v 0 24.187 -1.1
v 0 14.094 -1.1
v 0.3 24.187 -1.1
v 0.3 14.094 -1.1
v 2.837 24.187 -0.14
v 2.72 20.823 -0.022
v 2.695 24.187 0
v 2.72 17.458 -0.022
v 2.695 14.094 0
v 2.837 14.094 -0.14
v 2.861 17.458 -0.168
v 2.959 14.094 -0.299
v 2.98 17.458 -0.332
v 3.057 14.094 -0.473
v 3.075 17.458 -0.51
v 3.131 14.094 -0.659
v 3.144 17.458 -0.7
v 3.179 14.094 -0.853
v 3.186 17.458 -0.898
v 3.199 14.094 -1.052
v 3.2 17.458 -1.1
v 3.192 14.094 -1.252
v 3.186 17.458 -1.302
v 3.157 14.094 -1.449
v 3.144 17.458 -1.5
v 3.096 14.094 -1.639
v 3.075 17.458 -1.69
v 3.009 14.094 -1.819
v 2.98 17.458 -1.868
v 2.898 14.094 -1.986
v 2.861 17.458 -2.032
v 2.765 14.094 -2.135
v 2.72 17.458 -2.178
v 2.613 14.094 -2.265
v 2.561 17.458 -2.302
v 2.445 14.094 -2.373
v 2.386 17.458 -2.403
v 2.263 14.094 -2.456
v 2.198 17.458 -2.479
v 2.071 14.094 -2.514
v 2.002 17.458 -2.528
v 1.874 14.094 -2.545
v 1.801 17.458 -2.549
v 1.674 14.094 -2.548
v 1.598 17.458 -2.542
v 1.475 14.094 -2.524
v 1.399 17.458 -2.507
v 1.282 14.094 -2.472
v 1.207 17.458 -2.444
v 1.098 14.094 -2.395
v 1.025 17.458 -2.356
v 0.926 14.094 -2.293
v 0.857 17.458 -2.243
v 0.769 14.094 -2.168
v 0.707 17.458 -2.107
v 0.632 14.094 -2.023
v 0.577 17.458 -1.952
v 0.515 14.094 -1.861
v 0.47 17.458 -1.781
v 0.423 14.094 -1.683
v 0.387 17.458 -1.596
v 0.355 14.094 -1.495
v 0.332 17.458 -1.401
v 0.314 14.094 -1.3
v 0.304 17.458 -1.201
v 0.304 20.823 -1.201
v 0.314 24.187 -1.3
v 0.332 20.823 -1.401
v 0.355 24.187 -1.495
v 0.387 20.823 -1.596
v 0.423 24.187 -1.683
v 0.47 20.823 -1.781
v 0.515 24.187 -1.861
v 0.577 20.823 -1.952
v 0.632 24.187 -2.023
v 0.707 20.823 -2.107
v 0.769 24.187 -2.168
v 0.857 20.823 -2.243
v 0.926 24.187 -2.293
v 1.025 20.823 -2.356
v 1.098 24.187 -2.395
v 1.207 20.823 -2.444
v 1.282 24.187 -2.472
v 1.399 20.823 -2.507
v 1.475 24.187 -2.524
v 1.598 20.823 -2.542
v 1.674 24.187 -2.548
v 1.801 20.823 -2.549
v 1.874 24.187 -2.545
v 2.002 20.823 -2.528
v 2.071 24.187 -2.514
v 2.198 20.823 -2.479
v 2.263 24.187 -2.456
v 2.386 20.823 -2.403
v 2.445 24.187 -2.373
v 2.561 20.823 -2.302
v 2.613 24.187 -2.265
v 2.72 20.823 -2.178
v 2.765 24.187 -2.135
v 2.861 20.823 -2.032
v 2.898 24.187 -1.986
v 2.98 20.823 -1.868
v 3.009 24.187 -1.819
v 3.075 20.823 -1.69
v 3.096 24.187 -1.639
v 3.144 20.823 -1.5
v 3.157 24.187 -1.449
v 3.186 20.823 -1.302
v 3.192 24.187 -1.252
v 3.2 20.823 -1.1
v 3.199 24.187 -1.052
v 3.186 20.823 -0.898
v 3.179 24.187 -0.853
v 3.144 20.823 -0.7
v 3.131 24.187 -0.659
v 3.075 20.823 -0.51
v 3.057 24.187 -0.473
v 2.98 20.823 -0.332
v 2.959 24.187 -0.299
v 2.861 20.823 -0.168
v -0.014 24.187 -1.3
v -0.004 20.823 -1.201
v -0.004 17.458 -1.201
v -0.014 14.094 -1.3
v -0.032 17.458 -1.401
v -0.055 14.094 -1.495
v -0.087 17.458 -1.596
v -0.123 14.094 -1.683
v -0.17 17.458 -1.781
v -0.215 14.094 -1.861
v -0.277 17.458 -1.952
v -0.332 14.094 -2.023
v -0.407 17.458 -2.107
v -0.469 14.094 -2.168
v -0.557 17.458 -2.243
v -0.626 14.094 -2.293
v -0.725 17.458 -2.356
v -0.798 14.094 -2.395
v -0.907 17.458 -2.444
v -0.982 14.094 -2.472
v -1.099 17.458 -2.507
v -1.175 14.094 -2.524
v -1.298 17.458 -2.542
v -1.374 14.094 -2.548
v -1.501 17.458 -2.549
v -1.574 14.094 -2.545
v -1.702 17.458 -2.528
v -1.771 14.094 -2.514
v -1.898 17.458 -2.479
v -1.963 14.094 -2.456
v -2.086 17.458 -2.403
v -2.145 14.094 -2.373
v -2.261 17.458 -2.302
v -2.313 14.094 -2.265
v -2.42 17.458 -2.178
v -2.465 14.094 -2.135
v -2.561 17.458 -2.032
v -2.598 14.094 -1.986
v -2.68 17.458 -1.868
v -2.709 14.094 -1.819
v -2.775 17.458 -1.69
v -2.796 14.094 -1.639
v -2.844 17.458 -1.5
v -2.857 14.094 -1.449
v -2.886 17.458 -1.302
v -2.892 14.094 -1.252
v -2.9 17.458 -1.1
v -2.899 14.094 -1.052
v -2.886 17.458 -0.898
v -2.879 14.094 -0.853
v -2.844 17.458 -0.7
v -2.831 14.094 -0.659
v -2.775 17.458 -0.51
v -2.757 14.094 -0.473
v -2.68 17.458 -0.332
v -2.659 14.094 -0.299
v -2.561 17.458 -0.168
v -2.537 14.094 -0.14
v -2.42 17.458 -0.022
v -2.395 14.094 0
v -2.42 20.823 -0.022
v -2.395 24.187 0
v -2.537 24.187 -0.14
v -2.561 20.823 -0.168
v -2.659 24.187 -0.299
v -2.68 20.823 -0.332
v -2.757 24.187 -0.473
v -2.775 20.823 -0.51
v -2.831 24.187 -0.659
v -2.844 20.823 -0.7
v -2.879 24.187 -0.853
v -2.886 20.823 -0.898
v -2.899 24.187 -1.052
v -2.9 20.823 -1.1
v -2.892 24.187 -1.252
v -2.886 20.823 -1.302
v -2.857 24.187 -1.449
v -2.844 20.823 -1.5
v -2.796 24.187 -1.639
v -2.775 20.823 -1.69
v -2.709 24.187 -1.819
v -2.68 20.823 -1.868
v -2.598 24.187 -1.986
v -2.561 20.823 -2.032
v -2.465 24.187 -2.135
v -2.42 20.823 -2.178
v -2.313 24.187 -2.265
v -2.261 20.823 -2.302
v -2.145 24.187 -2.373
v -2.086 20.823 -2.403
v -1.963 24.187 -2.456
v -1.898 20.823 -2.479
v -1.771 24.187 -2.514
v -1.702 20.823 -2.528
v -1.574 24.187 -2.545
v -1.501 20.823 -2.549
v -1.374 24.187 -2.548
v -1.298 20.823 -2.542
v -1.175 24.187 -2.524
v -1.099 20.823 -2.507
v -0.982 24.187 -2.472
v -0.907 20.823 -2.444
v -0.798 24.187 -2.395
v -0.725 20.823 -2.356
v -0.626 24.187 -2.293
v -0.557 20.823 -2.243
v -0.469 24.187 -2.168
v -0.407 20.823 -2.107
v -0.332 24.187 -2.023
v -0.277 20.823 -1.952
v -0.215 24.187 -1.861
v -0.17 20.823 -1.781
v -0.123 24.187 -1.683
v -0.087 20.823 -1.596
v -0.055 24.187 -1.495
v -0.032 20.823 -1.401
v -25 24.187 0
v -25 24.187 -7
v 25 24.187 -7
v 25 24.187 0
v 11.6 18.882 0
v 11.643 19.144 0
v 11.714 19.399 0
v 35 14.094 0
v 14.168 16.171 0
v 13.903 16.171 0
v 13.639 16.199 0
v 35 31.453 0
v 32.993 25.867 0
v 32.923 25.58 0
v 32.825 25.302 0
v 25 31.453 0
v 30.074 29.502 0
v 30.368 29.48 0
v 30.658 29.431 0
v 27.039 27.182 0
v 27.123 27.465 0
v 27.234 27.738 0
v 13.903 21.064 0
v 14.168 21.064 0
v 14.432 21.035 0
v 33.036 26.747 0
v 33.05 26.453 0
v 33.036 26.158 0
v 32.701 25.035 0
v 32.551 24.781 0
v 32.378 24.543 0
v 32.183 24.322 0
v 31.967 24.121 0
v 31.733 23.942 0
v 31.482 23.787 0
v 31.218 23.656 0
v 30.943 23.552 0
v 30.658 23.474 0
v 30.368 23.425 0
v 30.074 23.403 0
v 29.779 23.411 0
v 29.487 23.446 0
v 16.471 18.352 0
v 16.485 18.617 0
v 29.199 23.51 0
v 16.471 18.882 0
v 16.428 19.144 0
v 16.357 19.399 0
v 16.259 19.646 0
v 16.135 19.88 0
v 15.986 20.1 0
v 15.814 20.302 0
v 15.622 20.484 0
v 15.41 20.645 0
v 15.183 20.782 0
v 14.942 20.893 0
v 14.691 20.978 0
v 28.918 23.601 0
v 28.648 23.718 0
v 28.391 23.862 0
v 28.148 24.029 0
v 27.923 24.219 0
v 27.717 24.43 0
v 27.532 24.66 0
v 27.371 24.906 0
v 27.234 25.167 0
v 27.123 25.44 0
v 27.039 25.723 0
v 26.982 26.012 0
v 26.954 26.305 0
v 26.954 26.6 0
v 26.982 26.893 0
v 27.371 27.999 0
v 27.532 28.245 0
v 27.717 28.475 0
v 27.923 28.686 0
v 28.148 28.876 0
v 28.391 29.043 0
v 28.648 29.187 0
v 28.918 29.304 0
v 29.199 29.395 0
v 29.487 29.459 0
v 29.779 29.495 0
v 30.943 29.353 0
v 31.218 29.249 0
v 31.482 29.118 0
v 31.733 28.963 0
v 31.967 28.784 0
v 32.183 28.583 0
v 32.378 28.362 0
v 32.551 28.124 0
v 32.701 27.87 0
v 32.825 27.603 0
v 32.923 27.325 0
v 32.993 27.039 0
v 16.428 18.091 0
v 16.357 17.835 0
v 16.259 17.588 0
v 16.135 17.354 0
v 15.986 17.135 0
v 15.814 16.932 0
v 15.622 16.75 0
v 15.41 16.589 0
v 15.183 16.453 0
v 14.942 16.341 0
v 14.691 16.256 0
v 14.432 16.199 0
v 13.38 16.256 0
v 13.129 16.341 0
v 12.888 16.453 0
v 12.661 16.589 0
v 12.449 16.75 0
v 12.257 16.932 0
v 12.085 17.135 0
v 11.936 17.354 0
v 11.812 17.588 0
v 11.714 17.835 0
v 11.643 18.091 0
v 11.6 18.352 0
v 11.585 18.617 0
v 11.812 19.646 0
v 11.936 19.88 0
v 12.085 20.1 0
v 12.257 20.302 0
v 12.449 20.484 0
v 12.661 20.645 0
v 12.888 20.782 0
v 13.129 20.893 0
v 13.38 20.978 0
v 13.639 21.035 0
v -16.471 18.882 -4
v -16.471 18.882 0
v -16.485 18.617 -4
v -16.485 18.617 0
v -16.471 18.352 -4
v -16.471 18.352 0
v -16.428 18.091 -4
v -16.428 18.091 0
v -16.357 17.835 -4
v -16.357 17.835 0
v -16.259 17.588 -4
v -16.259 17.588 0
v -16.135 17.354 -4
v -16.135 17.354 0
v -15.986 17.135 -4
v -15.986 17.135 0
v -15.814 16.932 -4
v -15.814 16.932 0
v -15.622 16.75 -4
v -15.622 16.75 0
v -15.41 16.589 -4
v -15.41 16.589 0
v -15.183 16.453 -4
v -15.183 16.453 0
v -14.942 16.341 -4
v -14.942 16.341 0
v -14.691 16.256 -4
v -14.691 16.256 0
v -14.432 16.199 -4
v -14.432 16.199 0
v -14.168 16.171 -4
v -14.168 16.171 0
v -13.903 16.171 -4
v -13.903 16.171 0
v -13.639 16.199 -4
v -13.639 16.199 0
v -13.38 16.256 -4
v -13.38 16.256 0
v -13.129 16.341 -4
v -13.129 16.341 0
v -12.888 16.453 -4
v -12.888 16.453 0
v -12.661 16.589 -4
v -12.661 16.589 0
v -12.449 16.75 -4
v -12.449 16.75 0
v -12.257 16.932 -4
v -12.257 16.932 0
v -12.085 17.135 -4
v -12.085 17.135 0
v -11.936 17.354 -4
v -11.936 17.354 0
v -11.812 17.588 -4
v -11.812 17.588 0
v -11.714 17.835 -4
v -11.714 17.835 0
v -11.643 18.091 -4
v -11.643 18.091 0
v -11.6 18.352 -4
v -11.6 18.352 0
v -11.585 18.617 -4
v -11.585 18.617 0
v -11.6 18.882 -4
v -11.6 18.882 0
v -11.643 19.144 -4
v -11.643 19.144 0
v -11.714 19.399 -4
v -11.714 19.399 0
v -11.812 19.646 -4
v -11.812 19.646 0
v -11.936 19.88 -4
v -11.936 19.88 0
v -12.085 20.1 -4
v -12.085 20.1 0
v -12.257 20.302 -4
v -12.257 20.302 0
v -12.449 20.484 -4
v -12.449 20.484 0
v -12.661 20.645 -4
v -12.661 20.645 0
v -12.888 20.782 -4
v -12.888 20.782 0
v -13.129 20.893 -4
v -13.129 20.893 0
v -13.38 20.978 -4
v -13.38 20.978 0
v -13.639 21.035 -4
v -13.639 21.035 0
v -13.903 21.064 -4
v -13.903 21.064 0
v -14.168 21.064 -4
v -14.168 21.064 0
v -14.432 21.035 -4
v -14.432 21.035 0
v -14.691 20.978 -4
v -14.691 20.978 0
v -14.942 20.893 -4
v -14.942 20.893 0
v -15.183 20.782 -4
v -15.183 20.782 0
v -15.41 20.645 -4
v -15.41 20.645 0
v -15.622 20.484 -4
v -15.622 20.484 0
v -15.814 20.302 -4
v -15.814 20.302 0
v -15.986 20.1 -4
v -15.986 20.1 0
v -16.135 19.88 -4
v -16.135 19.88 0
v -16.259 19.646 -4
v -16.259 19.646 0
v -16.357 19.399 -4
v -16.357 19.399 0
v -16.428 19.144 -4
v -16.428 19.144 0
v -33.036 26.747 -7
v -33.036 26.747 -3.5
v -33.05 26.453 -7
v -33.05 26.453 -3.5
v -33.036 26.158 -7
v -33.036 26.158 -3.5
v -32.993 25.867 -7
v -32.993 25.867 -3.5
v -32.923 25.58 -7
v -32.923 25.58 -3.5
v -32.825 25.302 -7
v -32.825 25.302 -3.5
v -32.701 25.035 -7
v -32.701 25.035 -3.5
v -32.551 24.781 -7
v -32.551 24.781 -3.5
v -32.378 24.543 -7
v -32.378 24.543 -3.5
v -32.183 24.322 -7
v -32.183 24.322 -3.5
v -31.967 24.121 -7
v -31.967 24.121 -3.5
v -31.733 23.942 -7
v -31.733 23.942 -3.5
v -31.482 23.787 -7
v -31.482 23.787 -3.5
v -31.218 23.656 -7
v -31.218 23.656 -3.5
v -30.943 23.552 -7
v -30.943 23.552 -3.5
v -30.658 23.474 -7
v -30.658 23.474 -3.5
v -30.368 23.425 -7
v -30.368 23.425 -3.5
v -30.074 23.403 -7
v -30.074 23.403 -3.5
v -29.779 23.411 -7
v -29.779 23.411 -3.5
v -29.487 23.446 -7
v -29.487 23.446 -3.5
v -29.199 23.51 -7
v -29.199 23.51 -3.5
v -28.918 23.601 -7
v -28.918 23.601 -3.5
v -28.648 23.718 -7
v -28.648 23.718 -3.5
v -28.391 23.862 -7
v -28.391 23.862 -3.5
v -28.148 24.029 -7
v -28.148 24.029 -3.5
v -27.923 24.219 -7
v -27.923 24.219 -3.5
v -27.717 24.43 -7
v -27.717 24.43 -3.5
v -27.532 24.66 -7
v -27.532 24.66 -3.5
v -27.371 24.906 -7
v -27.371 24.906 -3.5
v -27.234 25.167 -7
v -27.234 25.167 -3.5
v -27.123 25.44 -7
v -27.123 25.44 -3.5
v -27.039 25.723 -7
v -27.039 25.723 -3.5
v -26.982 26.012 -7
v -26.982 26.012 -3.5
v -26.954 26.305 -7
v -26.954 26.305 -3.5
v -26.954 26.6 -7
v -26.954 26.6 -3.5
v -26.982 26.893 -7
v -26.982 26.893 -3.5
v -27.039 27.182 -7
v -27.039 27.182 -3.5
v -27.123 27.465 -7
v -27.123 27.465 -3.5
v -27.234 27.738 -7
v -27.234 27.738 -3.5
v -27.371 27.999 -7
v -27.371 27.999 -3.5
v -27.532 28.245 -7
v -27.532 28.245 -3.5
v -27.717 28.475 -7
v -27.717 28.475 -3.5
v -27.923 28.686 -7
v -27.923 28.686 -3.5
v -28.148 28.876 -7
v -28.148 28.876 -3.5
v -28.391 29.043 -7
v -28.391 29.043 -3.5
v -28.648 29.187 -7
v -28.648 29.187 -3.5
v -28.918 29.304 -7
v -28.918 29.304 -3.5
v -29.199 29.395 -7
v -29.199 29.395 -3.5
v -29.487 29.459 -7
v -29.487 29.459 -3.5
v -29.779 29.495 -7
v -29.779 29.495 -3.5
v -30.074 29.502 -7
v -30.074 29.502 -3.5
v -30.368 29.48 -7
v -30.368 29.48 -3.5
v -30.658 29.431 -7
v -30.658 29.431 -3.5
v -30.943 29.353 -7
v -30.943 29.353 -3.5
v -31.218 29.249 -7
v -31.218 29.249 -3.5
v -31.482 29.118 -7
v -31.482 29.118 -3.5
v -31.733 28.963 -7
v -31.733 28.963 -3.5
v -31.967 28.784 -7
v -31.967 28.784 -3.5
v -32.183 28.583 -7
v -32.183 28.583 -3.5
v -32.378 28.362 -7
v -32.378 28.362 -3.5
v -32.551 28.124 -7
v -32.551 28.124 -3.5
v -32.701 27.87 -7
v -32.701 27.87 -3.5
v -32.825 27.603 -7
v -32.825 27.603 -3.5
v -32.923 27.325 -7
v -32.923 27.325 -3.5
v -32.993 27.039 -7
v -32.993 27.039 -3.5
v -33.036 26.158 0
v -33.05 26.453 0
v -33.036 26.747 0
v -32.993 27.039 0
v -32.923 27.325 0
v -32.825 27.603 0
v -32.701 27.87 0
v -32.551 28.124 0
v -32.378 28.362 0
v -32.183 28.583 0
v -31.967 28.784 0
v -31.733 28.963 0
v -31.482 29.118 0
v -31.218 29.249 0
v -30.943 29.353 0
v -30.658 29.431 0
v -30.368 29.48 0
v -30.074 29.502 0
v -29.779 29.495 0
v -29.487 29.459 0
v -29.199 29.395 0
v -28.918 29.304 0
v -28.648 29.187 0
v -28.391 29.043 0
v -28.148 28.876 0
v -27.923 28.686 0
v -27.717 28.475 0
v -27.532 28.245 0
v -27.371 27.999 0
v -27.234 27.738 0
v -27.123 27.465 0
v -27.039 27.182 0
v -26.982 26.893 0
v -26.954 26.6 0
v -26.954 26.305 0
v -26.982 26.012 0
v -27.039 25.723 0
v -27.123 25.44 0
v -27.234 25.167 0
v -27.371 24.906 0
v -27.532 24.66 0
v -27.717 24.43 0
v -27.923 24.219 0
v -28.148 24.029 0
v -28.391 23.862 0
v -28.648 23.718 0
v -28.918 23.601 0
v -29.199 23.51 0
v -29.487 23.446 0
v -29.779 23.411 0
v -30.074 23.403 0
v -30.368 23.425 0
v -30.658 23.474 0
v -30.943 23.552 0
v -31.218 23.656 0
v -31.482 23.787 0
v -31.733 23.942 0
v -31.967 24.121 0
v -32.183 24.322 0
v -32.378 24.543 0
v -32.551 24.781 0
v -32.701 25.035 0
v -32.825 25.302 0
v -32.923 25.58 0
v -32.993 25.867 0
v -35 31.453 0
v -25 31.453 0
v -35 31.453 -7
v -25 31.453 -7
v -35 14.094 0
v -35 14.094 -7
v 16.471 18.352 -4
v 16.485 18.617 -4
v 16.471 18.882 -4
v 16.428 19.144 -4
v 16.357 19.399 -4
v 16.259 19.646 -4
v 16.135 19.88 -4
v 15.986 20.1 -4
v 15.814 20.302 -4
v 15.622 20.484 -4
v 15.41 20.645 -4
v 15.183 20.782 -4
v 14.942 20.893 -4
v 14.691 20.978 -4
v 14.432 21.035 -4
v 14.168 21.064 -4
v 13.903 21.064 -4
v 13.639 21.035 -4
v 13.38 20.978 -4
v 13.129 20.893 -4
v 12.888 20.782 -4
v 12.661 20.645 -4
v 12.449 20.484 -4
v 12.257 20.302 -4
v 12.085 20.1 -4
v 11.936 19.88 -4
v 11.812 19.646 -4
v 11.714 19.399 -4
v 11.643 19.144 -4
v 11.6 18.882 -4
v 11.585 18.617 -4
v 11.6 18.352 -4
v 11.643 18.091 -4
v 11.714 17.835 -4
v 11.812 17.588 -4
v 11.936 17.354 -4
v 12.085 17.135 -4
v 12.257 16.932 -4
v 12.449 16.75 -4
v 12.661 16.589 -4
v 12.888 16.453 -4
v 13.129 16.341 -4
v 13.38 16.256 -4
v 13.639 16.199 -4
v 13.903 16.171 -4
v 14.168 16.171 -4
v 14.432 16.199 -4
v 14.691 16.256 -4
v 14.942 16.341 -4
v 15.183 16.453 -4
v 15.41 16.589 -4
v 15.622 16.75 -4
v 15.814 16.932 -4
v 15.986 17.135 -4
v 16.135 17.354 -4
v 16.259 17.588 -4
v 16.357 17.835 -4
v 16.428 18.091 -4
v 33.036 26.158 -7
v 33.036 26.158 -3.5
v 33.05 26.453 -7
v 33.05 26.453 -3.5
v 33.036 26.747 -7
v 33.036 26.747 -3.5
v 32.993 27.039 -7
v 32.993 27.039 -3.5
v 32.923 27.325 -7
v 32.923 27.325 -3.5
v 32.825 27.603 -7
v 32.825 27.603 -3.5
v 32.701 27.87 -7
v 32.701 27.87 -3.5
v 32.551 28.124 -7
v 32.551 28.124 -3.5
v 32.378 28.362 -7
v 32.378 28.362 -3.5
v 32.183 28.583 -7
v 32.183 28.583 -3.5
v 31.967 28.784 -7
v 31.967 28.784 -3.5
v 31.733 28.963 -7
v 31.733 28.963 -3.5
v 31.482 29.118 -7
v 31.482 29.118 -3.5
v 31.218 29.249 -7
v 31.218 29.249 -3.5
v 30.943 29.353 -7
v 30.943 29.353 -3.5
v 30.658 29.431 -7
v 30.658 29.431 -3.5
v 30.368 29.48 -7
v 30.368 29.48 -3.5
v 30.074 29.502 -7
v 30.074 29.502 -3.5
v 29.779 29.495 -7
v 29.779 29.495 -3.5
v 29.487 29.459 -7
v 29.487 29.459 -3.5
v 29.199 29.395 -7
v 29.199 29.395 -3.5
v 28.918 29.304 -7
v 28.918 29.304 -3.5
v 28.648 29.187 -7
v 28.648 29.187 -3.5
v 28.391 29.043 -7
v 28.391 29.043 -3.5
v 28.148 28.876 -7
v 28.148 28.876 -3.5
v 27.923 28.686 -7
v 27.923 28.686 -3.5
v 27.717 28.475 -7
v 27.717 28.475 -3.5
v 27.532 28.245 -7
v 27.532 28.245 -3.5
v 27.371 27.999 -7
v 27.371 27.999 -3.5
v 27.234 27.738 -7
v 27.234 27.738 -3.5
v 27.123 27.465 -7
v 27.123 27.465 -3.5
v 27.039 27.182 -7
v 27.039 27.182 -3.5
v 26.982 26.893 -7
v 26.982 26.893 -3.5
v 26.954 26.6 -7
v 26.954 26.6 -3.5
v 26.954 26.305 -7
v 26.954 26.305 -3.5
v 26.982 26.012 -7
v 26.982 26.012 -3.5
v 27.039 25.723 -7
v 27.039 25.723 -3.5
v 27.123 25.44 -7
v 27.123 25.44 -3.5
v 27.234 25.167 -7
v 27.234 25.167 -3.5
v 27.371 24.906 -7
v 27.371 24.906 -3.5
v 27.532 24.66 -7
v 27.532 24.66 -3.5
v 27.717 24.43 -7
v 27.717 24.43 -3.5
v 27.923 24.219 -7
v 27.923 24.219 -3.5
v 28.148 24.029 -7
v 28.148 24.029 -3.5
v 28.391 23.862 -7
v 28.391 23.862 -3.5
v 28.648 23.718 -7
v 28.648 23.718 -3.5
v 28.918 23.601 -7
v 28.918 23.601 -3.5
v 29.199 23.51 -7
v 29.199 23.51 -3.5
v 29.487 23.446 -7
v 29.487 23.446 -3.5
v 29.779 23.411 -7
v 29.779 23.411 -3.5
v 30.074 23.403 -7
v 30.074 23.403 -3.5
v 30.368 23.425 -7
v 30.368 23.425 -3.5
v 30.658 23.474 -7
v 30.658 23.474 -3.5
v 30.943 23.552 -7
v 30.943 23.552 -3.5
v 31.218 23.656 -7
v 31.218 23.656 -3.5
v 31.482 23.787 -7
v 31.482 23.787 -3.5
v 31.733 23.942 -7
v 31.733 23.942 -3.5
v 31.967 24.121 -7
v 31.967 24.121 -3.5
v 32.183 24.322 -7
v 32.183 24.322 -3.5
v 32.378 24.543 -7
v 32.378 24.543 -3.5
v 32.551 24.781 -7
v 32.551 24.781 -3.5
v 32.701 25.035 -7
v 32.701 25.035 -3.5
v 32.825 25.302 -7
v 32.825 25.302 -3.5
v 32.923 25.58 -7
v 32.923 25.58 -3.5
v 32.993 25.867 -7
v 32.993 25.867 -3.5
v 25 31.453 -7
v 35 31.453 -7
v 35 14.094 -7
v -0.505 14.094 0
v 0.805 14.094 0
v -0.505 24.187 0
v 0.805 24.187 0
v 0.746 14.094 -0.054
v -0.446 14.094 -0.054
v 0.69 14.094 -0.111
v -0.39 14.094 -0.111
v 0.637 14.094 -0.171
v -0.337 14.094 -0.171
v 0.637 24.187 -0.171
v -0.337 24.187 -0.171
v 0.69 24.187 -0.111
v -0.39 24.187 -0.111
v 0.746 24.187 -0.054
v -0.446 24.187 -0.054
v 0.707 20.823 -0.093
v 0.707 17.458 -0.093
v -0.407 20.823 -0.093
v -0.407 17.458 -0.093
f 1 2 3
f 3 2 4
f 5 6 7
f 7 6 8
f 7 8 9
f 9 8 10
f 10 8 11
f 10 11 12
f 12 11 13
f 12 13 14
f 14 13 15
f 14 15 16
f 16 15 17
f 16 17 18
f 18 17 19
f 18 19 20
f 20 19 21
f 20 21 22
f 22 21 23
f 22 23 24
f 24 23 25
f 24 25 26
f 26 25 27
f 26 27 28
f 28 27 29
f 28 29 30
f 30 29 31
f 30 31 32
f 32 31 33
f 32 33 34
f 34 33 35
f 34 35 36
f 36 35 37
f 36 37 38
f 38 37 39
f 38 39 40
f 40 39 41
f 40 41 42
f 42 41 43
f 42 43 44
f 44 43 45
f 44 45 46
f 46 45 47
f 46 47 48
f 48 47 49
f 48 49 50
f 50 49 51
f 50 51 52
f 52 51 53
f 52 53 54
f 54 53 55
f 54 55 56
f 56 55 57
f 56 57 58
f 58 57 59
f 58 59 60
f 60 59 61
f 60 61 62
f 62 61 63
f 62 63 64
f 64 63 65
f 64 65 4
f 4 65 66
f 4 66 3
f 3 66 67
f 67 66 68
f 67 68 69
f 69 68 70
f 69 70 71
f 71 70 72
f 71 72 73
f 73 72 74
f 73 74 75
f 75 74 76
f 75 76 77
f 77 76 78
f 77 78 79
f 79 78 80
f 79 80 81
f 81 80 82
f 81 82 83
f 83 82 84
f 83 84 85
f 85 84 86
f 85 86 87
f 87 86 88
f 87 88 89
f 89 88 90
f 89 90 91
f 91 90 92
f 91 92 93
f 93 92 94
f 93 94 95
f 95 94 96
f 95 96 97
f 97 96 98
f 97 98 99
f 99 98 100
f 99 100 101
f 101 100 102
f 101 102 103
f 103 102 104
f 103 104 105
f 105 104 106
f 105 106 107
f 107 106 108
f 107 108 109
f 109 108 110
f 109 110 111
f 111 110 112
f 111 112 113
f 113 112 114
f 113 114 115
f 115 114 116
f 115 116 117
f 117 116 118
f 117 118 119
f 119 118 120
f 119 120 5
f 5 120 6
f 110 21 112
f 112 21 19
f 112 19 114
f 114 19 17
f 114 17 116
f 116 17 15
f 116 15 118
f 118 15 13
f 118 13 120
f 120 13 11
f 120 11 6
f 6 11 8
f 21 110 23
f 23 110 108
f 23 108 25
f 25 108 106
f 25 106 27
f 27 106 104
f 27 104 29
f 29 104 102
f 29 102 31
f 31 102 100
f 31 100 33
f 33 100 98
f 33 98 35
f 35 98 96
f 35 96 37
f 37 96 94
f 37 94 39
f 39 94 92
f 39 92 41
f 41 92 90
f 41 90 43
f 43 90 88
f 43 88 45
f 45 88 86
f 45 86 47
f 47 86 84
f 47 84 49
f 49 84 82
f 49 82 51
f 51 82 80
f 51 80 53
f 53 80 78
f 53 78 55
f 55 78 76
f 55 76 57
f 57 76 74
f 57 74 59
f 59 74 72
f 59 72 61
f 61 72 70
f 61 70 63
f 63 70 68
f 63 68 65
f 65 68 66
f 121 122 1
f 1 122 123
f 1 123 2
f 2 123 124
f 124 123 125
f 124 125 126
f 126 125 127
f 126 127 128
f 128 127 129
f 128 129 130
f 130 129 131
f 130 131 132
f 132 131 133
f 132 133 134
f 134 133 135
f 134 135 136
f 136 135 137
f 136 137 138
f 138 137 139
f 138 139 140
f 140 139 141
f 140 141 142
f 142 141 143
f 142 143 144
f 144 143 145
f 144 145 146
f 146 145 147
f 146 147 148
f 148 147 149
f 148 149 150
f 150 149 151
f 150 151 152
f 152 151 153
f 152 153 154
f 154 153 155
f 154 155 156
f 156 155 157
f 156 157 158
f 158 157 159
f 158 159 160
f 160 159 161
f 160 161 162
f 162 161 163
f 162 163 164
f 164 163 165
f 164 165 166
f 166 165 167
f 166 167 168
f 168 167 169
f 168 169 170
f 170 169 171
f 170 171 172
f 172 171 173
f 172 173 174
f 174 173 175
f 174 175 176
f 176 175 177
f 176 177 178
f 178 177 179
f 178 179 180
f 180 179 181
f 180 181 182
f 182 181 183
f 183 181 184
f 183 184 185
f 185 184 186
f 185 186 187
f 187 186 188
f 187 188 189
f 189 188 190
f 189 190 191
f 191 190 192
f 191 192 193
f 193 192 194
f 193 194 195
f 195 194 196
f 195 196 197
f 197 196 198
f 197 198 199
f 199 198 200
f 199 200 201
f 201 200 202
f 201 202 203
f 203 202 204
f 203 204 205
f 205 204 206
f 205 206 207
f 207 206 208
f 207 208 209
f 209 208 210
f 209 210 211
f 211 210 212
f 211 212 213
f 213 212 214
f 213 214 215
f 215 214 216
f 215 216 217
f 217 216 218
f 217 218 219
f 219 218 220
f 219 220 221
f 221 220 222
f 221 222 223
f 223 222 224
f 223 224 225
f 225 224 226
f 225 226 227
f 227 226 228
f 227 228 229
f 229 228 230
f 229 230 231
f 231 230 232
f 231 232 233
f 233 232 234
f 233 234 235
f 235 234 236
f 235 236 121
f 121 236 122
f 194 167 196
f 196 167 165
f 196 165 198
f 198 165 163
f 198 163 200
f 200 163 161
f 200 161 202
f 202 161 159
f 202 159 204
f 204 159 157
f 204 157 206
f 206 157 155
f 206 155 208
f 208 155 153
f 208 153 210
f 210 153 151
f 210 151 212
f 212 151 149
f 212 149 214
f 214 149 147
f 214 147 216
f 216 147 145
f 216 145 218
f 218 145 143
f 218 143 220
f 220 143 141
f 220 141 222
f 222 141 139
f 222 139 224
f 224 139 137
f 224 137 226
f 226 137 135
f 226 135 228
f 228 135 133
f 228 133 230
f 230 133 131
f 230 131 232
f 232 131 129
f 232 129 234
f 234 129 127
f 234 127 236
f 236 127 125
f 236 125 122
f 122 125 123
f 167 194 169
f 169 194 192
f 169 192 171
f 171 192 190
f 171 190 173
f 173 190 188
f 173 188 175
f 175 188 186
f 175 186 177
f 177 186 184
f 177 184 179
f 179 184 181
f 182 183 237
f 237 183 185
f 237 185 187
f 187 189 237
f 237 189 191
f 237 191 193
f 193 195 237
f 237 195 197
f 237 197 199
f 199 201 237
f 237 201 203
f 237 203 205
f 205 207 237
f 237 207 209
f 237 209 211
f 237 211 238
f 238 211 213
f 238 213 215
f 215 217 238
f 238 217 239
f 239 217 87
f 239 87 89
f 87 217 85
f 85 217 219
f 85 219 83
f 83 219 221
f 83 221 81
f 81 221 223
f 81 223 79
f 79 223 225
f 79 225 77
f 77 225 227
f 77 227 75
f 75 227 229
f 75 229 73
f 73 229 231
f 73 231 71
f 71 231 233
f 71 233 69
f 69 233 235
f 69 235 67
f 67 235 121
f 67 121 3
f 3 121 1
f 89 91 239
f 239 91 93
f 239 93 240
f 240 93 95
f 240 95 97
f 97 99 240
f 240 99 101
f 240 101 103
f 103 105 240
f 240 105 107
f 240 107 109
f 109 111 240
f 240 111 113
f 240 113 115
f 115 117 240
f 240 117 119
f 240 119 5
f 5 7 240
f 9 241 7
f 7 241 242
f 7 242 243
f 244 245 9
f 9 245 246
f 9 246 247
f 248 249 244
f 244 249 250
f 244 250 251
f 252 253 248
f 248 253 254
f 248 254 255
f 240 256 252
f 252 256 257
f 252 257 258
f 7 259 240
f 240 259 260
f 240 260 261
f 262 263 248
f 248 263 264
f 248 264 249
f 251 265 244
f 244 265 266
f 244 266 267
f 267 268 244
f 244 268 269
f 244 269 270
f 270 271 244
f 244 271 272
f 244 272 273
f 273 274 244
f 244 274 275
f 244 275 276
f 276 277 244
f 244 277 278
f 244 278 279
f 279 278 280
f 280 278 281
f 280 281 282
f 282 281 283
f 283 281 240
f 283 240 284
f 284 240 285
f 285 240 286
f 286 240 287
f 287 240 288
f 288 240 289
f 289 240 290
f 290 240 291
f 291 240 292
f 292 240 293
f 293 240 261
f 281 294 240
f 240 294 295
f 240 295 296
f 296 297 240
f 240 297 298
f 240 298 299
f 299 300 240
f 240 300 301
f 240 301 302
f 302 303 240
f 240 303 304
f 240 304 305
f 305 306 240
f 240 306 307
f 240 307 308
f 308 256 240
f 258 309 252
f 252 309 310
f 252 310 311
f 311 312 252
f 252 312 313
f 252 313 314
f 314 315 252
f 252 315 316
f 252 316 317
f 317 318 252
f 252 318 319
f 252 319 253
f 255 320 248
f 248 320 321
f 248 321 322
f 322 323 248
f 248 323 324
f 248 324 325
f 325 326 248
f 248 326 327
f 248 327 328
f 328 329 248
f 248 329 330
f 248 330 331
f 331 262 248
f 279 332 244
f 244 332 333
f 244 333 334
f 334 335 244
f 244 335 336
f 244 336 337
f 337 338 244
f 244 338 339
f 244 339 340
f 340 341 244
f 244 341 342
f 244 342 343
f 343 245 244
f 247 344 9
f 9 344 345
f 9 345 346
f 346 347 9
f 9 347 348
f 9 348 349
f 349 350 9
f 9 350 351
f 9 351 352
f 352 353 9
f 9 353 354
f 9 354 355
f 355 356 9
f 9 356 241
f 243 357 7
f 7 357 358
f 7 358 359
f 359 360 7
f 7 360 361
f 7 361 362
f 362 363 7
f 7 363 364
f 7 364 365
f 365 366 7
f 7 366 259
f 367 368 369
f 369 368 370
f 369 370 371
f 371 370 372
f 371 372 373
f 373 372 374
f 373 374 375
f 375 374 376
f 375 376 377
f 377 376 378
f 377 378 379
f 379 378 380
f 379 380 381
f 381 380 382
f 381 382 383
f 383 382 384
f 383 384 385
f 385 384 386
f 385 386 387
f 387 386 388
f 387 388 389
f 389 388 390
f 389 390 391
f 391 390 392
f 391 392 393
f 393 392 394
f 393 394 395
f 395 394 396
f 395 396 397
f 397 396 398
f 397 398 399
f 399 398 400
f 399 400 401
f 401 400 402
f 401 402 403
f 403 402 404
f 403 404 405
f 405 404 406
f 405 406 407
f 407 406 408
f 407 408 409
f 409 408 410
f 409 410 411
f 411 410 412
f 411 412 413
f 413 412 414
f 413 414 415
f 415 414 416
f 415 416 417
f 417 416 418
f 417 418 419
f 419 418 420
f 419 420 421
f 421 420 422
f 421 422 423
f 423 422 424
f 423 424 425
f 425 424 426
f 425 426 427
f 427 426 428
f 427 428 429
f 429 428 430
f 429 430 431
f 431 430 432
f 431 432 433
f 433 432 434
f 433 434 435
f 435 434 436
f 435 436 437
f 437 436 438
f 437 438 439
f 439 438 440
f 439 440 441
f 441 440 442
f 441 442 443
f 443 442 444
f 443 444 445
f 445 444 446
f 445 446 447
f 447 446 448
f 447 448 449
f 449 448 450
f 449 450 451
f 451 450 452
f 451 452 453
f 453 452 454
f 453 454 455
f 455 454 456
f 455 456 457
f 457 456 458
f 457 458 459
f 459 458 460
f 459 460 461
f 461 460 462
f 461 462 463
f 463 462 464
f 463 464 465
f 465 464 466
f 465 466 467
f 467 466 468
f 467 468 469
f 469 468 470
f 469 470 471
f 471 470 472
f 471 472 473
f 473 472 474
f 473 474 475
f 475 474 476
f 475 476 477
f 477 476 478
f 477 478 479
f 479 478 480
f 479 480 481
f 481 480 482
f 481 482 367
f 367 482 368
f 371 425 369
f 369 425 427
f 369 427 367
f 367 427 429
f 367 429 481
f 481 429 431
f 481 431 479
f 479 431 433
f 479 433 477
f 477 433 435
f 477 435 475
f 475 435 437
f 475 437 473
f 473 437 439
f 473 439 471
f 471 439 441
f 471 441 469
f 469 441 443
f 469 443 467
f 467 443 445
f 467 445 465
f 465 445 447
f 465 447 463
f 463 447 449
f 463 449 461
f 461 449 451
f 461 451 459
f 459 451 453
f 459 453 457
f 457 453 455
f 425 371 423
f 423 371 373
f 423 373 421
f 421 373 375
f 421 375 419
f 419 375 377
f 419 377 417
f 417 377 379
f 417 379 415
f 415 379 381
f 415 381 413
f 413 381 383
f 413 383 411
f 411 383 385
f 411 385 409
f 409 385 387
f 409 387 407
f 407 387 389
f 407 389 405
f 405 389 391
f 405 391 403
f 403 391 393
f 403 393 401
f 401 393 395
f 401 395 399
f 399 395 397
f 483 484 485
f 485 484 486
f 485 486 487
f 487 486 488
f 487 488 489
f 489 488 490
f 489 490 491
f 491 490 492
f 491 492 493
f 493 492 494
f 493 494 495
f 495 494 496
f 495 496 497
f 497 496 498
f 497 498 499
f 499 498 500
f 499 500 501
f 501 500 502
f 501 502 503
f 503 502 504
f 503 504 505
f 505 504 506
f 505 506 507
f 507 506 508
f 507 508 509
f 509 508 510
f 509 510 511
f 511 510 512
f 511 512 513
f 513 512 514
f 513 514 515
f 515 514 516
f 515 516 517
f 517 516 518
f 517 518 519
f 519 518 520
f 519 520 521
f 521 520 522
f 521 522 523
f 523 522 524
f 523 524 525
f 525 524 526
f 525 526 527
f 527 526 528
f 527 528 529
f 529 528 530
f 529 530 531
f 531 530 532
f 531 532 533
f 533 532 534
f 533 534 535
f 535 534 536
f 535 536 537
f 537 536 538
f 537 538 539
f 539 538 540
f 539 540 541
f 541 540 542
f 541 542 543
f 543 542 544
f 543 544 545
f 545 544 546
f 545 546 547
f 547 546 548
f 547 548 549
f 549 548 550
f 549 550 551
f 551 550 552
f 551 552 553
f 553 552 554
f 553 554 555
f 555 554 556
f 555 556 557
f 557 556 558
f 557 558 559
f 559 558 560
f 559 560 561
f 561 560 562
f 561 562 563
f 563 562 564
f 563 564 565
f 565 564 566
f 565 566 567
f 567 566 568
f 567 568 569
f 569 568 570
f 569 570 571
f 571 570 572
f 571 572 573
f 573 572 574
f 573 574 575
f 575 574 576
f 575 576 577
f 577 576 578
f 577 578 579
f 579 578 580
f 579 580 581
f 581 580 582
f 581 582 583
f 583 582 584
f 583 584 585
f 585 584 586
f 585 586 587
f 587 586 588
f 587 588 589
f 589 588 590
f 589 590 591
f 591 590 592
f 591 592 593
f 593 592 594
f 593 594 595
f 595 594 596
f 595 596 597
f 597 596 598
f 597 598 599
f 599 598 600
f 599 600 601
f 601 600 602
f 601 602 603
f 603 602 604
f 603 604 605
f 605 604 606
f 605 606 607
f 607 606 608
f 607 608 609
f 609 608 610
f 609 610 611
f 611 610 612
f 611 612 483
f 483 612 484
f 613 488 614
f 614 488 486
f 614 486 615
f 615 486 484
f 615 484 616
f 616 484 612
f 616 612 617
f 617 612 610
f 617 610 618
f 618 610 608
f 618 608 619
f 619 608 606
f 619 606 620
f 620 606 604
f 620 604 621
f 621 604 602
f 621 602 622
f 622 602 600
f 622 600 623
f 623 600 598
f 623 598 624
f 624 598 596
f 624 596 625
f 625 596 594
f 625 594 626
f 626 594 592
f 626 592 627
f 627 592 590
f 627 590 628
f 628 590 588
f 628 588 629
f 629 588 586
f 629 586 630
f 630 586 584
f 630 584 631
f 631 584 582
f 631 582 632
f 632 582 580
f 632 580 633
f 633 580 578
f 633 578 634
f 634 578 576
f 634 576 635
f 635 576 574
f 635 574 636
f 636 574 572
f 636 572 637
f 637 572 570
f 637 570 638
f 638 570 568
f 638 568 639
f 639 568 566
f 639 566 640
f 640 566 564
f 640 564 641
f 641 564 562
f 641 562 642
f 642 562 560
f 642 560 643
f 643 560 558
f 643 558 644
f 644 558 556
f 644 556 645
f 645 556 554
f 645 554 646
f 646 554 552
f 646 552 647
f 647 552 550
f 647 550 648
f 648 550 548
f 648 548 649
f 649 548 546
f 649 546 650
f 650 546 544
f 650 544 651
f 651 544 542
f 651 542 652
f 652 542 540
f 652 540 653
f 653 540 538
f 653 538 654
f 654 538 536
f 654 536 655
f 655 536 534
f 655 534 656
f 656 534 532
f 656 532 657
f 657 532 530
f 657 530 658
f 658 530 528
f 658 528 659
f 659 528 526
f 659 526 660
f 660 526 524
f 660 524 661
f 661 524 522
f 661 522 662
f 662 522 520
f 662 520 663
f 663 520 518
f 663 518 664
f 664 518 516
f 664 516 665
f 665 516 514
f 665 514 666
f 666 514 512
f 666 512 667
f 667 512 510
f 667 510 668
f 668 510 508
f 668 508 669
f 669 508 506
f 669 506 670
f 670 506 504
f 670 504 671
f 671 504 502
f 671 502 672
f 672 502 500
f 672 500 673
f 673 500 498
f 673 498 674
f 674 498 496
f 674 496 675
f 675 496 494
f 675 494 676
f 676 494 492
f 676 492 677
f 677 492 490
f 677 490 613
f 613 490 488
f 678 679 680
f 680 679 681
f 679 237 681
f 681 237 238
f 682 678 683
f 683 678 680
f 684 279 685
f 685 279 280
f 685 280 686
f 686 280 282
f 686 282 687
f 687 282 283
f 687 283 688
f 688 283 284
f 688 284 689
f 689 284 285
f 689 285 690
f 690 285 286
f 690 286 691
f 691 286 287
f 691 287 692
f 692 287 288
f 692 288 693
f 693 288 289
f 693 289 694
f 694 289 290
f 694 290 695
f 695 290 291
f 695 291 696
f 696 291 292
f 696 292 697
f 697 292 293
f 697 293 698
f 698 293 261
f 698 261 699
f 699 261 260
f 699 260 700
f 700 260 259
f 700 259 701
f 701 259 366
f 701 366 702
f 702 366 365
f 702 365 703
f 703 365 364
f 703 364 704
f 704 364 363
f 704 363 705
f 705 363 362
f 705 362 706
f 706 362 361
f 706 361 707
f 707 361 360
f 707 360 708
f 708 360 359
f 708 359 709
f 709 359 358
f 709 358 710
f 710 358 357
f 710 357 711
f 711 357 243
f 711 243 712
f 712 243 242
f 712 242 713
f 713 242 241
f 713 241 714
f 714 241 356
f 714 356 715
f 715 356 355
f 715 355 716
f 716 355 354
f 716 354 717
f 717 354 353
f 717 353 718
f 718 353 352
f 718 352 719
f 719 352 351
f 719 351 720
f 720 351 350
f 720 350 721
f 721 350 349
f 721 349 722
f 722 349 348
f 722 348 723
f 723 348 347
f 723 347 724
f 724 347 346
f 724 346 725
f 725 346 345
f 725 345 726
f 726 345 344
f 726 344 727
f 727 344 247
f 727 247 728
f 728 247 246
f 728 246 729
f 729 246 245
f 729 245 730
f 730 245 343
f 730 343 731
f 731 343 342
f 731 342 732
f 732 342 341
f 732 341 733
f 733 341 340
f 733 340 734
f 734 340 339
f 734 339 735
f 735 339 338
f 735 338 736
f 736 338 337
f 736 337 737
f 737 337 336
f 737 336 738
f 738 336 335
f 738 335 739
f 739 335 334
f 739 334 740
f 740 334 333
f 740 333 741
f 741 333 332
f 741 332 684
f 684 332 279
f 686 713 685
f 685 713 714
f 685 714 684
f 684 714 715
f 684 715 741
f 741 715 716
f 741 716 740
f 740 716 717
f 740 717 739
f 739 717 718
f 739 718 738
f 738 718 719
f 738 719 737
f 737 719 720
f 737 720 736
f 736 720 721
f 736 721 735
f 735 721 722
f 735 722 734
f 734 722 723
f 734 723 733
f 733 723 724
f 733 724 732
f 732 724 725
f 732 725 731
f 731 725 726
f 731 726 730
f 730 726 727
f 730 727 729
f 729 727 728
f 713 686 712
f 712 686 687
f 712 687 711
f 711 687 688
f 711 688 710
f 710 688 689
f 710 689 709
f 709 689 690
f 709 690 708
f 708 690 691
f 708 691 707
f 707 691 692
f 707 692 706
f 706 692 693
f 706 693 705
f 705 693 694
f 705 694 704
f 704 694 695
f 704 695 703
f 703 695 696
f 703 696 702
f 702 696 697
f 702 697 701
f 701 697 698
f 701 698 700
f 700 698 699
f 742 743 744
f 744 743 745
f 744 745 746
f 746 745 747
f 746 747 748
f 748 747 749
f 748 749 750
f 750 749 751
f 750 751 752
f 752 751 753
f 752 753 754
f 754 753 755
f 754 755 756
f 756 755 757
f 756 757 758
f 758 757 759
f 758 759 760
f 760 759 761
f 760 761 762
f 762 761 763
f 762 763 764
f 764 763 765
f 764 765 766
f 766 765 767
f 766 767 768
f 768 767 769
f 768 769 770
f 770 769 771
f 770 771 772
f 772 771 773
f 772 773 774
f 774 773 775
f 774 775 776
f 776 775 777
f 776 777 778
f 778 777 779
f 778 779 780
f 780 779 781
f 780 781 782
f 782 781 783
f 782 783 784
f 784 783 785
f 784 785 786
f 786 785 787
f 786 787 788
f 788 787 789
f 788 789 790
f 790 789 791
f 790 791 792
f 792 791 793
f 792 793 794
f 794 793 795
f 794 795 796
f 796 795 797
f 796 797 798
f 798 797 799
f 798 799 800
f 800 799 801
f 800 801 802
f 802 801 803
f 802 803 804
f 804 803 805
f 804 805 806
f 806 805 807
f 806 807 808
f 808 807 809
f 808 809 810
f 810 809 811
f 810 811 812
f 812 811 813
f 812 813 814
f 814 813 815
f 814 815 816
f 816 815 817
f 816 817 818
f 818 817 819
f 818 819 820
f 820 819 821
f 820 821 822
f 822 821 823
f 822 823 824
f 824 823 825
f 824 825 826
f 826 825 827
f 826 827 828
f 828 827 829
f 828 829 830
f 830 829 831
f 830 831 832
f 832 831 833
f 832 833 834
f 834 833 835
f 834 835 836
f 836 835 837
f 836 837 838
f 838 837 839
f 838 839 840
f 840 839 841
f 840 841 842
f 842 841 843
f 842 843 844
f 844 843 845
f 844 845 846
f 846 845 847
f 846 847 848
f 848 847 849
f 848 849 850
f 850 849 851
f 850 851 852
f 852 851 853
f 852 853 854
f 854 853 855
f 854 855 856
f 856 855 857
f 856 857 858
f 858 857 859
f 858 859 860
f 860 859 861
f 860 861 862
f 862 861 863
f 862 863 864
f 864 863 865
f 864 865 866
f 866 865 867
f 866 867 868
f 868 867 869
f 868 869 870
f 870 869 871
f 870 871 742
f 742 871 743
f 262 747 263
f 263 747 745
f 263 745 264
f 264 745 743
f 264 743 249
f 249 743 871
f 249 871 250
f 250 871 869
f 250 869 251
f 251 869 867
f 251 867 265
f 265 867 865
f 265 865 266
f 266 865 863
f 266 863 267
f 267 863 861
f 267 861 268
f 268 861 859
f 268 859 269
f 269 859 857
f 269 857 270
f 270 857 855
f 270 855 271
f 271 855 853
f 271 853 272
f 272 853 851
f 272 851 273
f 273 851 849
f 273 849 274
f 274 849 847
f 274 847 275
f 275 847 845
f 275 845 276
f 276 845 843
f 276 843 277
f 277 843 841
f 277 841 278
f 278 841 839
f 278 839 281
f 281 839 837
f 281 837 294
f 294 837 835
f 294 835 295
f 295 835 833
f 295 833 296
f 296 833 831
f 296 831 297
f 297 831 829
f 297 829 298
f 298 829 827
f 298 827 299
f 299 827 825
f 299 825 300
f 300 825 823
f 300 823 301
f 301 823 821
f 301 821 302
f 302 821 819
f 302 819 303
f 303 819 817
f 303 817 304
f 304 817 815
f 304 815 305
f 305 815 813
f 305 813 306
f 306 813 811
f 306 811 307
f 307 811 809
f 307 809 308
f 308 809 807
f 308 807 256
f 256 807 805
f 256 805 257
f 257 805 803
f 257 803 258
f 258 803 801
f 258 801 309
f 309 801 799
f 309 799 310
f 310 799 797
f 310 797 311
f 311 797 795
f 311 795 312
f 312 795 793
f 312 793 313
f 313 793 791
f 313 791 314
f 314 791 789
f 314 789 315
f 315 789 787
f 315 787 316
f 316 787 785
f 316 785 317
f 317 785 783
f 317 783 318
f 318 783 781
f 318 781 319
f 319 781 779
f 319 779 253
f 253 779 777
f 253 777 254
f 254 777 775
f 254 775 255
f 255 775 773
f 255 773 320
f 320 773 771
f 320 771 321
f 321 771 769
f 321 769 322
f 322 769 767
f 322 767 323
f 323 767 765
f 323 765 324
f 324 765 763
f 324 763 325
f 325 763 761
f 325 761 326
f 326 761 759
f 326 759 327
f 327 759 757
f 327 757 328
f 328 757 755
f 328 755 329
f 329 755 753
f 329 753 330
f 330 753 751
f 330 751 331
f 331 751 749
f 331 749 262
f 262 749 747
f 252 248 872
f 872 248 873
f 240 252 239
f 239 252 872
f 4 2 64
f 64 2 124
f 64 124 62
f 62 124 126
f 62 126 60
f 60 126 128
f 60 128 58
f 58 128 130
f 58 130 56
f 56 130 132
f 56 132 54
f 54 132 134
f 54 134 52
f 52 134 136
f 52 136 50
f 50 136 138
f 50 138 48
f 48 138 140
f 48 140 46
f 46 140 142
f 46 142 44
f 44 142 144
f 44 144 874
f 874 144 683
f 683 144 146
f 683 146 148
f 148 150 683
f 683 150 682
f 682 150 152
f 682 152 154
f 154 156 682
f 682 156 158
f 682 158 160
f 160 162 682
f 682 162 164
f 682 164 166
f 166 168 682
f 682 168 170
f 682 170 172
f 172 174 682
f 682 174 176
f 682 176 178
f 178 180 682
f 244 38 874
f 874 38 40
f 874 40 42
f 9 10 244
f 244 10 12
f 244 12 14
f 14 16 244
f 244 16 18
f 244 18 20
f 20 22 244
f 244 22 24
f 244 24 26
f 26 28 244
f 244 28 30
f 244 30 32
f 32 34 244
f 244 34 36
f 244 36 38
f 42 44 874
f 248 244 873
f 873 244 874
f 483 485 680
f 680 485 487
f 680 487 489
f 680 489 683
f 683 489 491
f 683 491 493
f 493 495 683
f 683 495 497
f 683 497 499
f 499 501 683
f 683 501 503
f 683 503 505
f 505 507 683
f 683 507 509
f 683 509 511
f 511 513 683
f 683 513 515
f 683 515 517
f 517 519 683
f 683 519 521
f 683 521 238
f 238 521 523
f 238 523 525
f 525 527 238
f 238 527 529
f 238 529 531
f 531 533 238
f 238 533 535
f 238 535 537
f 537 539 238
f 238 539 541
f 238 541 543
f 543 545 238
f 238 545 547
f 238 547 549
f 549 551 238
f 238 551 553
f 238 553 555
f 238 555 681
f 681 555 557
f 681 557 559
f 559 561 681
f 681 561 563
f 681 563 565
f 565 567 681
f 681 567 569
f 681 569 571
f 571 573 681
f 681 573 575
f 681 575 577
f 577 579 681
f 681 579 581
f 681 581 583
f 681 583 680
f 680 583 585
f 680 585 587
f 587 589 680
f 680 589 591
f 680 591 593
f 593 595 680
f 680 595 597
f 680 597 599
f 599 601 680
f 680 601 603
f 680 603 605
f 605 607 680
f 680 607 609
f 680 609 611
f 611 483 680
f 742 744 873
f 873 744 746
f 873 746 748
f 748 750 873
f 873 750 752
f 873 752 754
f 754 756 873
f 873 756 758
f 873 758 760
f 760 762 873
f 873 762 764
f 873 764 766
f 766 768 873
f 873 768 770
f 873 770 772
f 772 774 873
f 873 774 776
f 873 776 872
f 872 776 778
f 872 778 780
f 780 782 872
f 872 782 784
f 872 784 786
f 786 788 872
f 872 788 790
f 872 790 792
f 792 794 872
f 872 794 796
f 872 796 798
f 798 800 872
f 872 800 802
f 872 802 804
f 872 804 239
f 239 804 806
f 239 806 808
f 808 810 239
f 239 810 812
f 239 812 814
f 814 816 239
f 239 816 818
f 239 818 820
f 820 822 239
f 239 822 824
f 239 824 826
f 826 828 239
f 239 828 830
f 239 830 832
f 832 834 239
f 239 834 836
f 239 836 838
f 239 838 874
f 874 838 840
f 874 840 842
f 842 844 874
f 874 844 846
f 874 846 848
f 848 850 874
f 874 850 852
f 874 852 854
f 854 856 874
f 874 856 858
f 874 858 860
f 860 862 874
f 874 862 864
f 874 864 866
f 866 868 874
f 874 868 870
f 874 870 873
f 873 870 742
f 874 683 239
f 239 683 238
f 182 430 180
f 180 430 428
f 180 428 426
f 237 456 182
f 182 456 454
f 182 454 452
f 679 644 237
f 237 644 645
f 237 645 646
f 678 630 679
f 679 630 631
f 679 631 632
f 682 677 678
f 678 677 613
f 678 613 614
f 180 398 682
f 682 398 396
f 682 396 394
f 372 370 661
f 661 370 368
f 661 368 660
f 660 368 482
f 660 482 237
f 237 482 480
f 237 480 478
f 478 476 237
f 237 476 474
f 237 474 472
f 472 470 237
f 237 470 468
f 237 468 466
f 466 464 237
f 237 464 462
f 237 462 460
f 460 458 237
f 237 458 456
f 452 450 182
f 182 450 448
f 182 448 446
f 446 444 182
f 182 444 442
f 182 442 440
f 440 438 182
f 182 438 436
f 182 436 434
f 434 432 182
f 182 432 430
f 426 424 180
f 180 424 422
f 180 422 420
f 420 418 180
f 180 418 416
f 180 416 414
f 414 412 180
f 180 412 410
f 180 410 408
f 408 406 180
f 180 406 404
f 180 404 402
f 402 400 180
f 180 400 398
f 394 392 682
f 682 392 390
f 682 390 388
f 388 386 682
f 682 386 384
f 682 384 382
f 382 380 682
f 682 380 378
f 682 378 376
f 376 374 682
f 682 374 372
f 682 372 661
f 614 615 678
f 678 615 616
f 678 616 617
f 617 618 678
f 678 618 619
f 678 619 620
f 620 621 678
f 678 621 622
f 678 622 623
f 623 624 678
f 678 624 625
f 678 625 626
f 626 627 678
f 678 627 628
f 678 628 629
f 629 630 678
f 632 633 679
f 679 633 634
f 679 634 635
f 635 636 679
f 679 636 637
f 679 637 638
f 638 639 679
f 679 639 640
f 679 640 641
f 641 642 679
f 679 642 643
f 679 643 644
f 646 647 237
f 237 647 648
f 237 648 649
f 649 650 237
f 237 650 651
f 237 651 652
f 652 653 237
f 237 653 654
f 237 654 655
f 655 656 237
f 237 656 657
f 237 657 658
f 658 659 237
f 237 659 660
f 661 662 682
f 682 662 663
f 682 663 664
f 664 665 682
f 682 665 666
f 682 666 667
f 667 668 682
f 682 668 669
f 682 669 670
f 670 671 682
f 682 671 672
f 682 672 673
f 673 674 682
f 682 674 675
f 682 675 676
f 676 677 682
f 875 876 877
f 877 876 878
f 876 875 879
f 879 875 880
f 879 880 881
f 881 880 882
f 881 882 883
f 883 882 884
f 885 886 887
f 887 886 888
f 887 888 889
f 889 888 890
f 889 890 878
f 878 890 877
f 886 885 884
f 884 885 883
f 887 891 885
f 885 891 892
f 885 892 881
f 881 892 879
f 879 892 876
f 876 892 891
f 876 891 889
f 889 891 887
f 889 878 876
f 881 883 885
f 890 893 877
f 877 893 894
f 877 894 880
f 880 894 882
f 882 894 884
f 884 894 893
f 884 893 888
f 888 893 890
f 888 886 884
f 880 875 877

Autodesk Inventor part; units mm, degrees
ref_plane "YZ Plane" through (0, 0, 0) normal (1, 0, 0) x (0, 1, 0)
ref_plane "XZ Plane" through (0, 0, 0) normal (0, 1, 0) x (-1, 0, 0)
ref_plane "XY Plane" through (0, 0, 0) normal (0, 0, 1) x (1, 0, 0)
sketch "Sketch1" plane through (0, 0, 0) normal (0, 0, 1) x (1, 0, 0)
  circle A0 centre (30, 26.4525) radius 3 projected
  circle A1 centre (-30, 26.4525) radius 3 projected
  line L0 (-12, 6.73) -> (12, 6.73) projected
  line L1 (12, 6.73) -> (12, 13) projected
  line L2 (12, 13) -> (-12, 13) projected
  line L3 (-12, 13) -> (-12, 6.73) projected
  line L4 (0, 33.0213) -> (0, 0)
  circle A2 centre (30, 26.4525) radius 3.05
  circle A3 centre (-30, 26.4525) radius 3.05
  line L5 (35, 31.4525) -> (35, 14.0938)
  line L6 (35, 14.0938) -> (0, 14.0938)
  line L7 (0, 24.1869) -> (25, 24.1869)
  line L8 (25, 24.1869) -> (25, 31.4525)
  line L9 (25, 31.4525) -> (35, 31.4525)
  dimension "d0" = 6.1
  dimension "d1" = 6.1
  dimension "d2" = 5
  dimension "d3" = 5
  dimension "d4" = 5
  dimension "d11" = 90
extrude "Extrusion1" add sketch "Sketch1" against normal blind 7 contours L4 L7 L8 L9 L5 L6
sketch "Sketch2" plane through (0, 0, 0) normal (0, 0, 1) x (1, 0, 0)
  circle A0 centre (30, 26.4525) radius 3.05 projected
  line L0 (35, 31.4525) -> (35, 14.0938) projected
  line L1 (25, 31.4525) -> (35, 31.4525) projected
  line L2 (25, 24.1869) -> (25, 31.4525) projected
  line L3 (0, 24.1869) -> (25, 24.1869) projected
  line L4 (0, 14.0938) -> (0, 24.1869) projected
  line L5 (35, 14.0938) -> (0, 14.0938) projected
  line L6 (0, 14.0938) -> (0, 24.1869) projected
  circle A1 centre (0, 19.1403) radius 2.45
  circle A2 centre (14.0354, 18.6172) radius 2.45
  point P0 (0, 0)
  dimension "d7" = 4.9
  dimension "d8" = 4.9
extrude "Extrusion2" cut sketch "Sketch2" against normal blind 4 contours A2
mirror "Mirror1" about plane through (0, 14.0938, 0) normal (-1, 0, 0) of "Extrusion1", "Extrusion2"
sketch "Sketch3" plane through (35, 14.0938, -7) normal (0, -1, 0) x (1, 0, 0)
  line L0 (-37.45, 7) -> (-37.45, 3)
  line L1 (-40.0482, 3) -> (-44.9482, 3) projected
  line L2 (-32.55, 7) -> (-32.55, 3)
  circle A0 centre (-36.45, 5.9) radius 1.45
  circle A1 centre (-33.25, 5.9) radius 1.45
  line L3 (-35.3371, 6.8295) -> (-34.3629, 6.8295)
  line L4 (-35, 5.9) -> (-34.7, 5.9)
  point P0 (-35, 7)
  dimension "d12" = 2.9
  dimension "d13" = 2.9
  dimension "d14" = 1.1
  dimension "d15" = 0
  dimension "d16" = 3.2
  dimension "d17" = 1
extrude "Extrusion3" cut sketch "Sketch3" against normal through all
properties part number "cellSTORM_inverted_sampleholder_bar"
